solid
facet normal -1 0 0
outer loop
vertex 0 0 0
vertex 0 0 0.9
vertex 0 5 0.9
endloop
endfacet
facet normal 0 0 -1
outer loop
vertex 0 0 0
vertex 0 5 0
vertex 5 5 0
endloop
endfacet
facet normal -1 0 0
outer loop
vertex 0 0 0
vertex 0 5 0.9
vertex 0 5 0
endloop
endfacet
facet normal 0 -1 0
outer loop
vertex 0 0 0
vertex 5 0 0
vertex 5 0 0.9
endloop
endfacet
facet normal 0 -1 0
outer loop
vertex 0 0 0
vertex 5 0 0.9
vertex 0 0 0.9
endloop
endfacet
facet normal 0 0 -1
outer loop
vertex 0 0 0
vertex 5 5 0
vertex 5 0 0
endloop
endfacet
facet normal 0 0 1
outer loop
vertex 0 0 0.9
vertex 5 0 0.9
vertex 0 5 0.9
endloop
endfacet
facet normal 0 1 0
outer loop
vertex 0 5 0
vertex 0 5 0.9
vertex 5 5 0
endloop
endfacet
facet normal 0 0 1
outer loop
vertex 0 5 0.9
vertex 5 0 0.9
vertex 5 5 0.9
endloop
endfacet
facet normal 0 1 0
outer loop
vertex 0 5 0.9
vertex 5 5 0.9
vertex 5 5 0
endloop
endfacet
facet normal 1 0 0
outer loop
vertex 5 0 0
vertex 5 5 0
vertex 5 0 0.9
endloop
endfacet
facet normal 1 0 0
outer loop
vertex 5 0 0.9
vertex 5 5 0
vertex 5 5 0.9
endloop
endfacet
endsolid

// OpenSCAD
/* Warning, this is a very basic generator with a lot of approximation 
input data : [VQFN, PCA, 5x5x0.9mm, 32, , A, C04-01039A]
generated by com.zoubworld.electronics.cad.model3d.Basic
Date : Sun Feb 15 10:50:49 CET 2026
*/

//body
color("black")
translate([0,0,0])
cube([5.0,5.0,0.9], center=false);
